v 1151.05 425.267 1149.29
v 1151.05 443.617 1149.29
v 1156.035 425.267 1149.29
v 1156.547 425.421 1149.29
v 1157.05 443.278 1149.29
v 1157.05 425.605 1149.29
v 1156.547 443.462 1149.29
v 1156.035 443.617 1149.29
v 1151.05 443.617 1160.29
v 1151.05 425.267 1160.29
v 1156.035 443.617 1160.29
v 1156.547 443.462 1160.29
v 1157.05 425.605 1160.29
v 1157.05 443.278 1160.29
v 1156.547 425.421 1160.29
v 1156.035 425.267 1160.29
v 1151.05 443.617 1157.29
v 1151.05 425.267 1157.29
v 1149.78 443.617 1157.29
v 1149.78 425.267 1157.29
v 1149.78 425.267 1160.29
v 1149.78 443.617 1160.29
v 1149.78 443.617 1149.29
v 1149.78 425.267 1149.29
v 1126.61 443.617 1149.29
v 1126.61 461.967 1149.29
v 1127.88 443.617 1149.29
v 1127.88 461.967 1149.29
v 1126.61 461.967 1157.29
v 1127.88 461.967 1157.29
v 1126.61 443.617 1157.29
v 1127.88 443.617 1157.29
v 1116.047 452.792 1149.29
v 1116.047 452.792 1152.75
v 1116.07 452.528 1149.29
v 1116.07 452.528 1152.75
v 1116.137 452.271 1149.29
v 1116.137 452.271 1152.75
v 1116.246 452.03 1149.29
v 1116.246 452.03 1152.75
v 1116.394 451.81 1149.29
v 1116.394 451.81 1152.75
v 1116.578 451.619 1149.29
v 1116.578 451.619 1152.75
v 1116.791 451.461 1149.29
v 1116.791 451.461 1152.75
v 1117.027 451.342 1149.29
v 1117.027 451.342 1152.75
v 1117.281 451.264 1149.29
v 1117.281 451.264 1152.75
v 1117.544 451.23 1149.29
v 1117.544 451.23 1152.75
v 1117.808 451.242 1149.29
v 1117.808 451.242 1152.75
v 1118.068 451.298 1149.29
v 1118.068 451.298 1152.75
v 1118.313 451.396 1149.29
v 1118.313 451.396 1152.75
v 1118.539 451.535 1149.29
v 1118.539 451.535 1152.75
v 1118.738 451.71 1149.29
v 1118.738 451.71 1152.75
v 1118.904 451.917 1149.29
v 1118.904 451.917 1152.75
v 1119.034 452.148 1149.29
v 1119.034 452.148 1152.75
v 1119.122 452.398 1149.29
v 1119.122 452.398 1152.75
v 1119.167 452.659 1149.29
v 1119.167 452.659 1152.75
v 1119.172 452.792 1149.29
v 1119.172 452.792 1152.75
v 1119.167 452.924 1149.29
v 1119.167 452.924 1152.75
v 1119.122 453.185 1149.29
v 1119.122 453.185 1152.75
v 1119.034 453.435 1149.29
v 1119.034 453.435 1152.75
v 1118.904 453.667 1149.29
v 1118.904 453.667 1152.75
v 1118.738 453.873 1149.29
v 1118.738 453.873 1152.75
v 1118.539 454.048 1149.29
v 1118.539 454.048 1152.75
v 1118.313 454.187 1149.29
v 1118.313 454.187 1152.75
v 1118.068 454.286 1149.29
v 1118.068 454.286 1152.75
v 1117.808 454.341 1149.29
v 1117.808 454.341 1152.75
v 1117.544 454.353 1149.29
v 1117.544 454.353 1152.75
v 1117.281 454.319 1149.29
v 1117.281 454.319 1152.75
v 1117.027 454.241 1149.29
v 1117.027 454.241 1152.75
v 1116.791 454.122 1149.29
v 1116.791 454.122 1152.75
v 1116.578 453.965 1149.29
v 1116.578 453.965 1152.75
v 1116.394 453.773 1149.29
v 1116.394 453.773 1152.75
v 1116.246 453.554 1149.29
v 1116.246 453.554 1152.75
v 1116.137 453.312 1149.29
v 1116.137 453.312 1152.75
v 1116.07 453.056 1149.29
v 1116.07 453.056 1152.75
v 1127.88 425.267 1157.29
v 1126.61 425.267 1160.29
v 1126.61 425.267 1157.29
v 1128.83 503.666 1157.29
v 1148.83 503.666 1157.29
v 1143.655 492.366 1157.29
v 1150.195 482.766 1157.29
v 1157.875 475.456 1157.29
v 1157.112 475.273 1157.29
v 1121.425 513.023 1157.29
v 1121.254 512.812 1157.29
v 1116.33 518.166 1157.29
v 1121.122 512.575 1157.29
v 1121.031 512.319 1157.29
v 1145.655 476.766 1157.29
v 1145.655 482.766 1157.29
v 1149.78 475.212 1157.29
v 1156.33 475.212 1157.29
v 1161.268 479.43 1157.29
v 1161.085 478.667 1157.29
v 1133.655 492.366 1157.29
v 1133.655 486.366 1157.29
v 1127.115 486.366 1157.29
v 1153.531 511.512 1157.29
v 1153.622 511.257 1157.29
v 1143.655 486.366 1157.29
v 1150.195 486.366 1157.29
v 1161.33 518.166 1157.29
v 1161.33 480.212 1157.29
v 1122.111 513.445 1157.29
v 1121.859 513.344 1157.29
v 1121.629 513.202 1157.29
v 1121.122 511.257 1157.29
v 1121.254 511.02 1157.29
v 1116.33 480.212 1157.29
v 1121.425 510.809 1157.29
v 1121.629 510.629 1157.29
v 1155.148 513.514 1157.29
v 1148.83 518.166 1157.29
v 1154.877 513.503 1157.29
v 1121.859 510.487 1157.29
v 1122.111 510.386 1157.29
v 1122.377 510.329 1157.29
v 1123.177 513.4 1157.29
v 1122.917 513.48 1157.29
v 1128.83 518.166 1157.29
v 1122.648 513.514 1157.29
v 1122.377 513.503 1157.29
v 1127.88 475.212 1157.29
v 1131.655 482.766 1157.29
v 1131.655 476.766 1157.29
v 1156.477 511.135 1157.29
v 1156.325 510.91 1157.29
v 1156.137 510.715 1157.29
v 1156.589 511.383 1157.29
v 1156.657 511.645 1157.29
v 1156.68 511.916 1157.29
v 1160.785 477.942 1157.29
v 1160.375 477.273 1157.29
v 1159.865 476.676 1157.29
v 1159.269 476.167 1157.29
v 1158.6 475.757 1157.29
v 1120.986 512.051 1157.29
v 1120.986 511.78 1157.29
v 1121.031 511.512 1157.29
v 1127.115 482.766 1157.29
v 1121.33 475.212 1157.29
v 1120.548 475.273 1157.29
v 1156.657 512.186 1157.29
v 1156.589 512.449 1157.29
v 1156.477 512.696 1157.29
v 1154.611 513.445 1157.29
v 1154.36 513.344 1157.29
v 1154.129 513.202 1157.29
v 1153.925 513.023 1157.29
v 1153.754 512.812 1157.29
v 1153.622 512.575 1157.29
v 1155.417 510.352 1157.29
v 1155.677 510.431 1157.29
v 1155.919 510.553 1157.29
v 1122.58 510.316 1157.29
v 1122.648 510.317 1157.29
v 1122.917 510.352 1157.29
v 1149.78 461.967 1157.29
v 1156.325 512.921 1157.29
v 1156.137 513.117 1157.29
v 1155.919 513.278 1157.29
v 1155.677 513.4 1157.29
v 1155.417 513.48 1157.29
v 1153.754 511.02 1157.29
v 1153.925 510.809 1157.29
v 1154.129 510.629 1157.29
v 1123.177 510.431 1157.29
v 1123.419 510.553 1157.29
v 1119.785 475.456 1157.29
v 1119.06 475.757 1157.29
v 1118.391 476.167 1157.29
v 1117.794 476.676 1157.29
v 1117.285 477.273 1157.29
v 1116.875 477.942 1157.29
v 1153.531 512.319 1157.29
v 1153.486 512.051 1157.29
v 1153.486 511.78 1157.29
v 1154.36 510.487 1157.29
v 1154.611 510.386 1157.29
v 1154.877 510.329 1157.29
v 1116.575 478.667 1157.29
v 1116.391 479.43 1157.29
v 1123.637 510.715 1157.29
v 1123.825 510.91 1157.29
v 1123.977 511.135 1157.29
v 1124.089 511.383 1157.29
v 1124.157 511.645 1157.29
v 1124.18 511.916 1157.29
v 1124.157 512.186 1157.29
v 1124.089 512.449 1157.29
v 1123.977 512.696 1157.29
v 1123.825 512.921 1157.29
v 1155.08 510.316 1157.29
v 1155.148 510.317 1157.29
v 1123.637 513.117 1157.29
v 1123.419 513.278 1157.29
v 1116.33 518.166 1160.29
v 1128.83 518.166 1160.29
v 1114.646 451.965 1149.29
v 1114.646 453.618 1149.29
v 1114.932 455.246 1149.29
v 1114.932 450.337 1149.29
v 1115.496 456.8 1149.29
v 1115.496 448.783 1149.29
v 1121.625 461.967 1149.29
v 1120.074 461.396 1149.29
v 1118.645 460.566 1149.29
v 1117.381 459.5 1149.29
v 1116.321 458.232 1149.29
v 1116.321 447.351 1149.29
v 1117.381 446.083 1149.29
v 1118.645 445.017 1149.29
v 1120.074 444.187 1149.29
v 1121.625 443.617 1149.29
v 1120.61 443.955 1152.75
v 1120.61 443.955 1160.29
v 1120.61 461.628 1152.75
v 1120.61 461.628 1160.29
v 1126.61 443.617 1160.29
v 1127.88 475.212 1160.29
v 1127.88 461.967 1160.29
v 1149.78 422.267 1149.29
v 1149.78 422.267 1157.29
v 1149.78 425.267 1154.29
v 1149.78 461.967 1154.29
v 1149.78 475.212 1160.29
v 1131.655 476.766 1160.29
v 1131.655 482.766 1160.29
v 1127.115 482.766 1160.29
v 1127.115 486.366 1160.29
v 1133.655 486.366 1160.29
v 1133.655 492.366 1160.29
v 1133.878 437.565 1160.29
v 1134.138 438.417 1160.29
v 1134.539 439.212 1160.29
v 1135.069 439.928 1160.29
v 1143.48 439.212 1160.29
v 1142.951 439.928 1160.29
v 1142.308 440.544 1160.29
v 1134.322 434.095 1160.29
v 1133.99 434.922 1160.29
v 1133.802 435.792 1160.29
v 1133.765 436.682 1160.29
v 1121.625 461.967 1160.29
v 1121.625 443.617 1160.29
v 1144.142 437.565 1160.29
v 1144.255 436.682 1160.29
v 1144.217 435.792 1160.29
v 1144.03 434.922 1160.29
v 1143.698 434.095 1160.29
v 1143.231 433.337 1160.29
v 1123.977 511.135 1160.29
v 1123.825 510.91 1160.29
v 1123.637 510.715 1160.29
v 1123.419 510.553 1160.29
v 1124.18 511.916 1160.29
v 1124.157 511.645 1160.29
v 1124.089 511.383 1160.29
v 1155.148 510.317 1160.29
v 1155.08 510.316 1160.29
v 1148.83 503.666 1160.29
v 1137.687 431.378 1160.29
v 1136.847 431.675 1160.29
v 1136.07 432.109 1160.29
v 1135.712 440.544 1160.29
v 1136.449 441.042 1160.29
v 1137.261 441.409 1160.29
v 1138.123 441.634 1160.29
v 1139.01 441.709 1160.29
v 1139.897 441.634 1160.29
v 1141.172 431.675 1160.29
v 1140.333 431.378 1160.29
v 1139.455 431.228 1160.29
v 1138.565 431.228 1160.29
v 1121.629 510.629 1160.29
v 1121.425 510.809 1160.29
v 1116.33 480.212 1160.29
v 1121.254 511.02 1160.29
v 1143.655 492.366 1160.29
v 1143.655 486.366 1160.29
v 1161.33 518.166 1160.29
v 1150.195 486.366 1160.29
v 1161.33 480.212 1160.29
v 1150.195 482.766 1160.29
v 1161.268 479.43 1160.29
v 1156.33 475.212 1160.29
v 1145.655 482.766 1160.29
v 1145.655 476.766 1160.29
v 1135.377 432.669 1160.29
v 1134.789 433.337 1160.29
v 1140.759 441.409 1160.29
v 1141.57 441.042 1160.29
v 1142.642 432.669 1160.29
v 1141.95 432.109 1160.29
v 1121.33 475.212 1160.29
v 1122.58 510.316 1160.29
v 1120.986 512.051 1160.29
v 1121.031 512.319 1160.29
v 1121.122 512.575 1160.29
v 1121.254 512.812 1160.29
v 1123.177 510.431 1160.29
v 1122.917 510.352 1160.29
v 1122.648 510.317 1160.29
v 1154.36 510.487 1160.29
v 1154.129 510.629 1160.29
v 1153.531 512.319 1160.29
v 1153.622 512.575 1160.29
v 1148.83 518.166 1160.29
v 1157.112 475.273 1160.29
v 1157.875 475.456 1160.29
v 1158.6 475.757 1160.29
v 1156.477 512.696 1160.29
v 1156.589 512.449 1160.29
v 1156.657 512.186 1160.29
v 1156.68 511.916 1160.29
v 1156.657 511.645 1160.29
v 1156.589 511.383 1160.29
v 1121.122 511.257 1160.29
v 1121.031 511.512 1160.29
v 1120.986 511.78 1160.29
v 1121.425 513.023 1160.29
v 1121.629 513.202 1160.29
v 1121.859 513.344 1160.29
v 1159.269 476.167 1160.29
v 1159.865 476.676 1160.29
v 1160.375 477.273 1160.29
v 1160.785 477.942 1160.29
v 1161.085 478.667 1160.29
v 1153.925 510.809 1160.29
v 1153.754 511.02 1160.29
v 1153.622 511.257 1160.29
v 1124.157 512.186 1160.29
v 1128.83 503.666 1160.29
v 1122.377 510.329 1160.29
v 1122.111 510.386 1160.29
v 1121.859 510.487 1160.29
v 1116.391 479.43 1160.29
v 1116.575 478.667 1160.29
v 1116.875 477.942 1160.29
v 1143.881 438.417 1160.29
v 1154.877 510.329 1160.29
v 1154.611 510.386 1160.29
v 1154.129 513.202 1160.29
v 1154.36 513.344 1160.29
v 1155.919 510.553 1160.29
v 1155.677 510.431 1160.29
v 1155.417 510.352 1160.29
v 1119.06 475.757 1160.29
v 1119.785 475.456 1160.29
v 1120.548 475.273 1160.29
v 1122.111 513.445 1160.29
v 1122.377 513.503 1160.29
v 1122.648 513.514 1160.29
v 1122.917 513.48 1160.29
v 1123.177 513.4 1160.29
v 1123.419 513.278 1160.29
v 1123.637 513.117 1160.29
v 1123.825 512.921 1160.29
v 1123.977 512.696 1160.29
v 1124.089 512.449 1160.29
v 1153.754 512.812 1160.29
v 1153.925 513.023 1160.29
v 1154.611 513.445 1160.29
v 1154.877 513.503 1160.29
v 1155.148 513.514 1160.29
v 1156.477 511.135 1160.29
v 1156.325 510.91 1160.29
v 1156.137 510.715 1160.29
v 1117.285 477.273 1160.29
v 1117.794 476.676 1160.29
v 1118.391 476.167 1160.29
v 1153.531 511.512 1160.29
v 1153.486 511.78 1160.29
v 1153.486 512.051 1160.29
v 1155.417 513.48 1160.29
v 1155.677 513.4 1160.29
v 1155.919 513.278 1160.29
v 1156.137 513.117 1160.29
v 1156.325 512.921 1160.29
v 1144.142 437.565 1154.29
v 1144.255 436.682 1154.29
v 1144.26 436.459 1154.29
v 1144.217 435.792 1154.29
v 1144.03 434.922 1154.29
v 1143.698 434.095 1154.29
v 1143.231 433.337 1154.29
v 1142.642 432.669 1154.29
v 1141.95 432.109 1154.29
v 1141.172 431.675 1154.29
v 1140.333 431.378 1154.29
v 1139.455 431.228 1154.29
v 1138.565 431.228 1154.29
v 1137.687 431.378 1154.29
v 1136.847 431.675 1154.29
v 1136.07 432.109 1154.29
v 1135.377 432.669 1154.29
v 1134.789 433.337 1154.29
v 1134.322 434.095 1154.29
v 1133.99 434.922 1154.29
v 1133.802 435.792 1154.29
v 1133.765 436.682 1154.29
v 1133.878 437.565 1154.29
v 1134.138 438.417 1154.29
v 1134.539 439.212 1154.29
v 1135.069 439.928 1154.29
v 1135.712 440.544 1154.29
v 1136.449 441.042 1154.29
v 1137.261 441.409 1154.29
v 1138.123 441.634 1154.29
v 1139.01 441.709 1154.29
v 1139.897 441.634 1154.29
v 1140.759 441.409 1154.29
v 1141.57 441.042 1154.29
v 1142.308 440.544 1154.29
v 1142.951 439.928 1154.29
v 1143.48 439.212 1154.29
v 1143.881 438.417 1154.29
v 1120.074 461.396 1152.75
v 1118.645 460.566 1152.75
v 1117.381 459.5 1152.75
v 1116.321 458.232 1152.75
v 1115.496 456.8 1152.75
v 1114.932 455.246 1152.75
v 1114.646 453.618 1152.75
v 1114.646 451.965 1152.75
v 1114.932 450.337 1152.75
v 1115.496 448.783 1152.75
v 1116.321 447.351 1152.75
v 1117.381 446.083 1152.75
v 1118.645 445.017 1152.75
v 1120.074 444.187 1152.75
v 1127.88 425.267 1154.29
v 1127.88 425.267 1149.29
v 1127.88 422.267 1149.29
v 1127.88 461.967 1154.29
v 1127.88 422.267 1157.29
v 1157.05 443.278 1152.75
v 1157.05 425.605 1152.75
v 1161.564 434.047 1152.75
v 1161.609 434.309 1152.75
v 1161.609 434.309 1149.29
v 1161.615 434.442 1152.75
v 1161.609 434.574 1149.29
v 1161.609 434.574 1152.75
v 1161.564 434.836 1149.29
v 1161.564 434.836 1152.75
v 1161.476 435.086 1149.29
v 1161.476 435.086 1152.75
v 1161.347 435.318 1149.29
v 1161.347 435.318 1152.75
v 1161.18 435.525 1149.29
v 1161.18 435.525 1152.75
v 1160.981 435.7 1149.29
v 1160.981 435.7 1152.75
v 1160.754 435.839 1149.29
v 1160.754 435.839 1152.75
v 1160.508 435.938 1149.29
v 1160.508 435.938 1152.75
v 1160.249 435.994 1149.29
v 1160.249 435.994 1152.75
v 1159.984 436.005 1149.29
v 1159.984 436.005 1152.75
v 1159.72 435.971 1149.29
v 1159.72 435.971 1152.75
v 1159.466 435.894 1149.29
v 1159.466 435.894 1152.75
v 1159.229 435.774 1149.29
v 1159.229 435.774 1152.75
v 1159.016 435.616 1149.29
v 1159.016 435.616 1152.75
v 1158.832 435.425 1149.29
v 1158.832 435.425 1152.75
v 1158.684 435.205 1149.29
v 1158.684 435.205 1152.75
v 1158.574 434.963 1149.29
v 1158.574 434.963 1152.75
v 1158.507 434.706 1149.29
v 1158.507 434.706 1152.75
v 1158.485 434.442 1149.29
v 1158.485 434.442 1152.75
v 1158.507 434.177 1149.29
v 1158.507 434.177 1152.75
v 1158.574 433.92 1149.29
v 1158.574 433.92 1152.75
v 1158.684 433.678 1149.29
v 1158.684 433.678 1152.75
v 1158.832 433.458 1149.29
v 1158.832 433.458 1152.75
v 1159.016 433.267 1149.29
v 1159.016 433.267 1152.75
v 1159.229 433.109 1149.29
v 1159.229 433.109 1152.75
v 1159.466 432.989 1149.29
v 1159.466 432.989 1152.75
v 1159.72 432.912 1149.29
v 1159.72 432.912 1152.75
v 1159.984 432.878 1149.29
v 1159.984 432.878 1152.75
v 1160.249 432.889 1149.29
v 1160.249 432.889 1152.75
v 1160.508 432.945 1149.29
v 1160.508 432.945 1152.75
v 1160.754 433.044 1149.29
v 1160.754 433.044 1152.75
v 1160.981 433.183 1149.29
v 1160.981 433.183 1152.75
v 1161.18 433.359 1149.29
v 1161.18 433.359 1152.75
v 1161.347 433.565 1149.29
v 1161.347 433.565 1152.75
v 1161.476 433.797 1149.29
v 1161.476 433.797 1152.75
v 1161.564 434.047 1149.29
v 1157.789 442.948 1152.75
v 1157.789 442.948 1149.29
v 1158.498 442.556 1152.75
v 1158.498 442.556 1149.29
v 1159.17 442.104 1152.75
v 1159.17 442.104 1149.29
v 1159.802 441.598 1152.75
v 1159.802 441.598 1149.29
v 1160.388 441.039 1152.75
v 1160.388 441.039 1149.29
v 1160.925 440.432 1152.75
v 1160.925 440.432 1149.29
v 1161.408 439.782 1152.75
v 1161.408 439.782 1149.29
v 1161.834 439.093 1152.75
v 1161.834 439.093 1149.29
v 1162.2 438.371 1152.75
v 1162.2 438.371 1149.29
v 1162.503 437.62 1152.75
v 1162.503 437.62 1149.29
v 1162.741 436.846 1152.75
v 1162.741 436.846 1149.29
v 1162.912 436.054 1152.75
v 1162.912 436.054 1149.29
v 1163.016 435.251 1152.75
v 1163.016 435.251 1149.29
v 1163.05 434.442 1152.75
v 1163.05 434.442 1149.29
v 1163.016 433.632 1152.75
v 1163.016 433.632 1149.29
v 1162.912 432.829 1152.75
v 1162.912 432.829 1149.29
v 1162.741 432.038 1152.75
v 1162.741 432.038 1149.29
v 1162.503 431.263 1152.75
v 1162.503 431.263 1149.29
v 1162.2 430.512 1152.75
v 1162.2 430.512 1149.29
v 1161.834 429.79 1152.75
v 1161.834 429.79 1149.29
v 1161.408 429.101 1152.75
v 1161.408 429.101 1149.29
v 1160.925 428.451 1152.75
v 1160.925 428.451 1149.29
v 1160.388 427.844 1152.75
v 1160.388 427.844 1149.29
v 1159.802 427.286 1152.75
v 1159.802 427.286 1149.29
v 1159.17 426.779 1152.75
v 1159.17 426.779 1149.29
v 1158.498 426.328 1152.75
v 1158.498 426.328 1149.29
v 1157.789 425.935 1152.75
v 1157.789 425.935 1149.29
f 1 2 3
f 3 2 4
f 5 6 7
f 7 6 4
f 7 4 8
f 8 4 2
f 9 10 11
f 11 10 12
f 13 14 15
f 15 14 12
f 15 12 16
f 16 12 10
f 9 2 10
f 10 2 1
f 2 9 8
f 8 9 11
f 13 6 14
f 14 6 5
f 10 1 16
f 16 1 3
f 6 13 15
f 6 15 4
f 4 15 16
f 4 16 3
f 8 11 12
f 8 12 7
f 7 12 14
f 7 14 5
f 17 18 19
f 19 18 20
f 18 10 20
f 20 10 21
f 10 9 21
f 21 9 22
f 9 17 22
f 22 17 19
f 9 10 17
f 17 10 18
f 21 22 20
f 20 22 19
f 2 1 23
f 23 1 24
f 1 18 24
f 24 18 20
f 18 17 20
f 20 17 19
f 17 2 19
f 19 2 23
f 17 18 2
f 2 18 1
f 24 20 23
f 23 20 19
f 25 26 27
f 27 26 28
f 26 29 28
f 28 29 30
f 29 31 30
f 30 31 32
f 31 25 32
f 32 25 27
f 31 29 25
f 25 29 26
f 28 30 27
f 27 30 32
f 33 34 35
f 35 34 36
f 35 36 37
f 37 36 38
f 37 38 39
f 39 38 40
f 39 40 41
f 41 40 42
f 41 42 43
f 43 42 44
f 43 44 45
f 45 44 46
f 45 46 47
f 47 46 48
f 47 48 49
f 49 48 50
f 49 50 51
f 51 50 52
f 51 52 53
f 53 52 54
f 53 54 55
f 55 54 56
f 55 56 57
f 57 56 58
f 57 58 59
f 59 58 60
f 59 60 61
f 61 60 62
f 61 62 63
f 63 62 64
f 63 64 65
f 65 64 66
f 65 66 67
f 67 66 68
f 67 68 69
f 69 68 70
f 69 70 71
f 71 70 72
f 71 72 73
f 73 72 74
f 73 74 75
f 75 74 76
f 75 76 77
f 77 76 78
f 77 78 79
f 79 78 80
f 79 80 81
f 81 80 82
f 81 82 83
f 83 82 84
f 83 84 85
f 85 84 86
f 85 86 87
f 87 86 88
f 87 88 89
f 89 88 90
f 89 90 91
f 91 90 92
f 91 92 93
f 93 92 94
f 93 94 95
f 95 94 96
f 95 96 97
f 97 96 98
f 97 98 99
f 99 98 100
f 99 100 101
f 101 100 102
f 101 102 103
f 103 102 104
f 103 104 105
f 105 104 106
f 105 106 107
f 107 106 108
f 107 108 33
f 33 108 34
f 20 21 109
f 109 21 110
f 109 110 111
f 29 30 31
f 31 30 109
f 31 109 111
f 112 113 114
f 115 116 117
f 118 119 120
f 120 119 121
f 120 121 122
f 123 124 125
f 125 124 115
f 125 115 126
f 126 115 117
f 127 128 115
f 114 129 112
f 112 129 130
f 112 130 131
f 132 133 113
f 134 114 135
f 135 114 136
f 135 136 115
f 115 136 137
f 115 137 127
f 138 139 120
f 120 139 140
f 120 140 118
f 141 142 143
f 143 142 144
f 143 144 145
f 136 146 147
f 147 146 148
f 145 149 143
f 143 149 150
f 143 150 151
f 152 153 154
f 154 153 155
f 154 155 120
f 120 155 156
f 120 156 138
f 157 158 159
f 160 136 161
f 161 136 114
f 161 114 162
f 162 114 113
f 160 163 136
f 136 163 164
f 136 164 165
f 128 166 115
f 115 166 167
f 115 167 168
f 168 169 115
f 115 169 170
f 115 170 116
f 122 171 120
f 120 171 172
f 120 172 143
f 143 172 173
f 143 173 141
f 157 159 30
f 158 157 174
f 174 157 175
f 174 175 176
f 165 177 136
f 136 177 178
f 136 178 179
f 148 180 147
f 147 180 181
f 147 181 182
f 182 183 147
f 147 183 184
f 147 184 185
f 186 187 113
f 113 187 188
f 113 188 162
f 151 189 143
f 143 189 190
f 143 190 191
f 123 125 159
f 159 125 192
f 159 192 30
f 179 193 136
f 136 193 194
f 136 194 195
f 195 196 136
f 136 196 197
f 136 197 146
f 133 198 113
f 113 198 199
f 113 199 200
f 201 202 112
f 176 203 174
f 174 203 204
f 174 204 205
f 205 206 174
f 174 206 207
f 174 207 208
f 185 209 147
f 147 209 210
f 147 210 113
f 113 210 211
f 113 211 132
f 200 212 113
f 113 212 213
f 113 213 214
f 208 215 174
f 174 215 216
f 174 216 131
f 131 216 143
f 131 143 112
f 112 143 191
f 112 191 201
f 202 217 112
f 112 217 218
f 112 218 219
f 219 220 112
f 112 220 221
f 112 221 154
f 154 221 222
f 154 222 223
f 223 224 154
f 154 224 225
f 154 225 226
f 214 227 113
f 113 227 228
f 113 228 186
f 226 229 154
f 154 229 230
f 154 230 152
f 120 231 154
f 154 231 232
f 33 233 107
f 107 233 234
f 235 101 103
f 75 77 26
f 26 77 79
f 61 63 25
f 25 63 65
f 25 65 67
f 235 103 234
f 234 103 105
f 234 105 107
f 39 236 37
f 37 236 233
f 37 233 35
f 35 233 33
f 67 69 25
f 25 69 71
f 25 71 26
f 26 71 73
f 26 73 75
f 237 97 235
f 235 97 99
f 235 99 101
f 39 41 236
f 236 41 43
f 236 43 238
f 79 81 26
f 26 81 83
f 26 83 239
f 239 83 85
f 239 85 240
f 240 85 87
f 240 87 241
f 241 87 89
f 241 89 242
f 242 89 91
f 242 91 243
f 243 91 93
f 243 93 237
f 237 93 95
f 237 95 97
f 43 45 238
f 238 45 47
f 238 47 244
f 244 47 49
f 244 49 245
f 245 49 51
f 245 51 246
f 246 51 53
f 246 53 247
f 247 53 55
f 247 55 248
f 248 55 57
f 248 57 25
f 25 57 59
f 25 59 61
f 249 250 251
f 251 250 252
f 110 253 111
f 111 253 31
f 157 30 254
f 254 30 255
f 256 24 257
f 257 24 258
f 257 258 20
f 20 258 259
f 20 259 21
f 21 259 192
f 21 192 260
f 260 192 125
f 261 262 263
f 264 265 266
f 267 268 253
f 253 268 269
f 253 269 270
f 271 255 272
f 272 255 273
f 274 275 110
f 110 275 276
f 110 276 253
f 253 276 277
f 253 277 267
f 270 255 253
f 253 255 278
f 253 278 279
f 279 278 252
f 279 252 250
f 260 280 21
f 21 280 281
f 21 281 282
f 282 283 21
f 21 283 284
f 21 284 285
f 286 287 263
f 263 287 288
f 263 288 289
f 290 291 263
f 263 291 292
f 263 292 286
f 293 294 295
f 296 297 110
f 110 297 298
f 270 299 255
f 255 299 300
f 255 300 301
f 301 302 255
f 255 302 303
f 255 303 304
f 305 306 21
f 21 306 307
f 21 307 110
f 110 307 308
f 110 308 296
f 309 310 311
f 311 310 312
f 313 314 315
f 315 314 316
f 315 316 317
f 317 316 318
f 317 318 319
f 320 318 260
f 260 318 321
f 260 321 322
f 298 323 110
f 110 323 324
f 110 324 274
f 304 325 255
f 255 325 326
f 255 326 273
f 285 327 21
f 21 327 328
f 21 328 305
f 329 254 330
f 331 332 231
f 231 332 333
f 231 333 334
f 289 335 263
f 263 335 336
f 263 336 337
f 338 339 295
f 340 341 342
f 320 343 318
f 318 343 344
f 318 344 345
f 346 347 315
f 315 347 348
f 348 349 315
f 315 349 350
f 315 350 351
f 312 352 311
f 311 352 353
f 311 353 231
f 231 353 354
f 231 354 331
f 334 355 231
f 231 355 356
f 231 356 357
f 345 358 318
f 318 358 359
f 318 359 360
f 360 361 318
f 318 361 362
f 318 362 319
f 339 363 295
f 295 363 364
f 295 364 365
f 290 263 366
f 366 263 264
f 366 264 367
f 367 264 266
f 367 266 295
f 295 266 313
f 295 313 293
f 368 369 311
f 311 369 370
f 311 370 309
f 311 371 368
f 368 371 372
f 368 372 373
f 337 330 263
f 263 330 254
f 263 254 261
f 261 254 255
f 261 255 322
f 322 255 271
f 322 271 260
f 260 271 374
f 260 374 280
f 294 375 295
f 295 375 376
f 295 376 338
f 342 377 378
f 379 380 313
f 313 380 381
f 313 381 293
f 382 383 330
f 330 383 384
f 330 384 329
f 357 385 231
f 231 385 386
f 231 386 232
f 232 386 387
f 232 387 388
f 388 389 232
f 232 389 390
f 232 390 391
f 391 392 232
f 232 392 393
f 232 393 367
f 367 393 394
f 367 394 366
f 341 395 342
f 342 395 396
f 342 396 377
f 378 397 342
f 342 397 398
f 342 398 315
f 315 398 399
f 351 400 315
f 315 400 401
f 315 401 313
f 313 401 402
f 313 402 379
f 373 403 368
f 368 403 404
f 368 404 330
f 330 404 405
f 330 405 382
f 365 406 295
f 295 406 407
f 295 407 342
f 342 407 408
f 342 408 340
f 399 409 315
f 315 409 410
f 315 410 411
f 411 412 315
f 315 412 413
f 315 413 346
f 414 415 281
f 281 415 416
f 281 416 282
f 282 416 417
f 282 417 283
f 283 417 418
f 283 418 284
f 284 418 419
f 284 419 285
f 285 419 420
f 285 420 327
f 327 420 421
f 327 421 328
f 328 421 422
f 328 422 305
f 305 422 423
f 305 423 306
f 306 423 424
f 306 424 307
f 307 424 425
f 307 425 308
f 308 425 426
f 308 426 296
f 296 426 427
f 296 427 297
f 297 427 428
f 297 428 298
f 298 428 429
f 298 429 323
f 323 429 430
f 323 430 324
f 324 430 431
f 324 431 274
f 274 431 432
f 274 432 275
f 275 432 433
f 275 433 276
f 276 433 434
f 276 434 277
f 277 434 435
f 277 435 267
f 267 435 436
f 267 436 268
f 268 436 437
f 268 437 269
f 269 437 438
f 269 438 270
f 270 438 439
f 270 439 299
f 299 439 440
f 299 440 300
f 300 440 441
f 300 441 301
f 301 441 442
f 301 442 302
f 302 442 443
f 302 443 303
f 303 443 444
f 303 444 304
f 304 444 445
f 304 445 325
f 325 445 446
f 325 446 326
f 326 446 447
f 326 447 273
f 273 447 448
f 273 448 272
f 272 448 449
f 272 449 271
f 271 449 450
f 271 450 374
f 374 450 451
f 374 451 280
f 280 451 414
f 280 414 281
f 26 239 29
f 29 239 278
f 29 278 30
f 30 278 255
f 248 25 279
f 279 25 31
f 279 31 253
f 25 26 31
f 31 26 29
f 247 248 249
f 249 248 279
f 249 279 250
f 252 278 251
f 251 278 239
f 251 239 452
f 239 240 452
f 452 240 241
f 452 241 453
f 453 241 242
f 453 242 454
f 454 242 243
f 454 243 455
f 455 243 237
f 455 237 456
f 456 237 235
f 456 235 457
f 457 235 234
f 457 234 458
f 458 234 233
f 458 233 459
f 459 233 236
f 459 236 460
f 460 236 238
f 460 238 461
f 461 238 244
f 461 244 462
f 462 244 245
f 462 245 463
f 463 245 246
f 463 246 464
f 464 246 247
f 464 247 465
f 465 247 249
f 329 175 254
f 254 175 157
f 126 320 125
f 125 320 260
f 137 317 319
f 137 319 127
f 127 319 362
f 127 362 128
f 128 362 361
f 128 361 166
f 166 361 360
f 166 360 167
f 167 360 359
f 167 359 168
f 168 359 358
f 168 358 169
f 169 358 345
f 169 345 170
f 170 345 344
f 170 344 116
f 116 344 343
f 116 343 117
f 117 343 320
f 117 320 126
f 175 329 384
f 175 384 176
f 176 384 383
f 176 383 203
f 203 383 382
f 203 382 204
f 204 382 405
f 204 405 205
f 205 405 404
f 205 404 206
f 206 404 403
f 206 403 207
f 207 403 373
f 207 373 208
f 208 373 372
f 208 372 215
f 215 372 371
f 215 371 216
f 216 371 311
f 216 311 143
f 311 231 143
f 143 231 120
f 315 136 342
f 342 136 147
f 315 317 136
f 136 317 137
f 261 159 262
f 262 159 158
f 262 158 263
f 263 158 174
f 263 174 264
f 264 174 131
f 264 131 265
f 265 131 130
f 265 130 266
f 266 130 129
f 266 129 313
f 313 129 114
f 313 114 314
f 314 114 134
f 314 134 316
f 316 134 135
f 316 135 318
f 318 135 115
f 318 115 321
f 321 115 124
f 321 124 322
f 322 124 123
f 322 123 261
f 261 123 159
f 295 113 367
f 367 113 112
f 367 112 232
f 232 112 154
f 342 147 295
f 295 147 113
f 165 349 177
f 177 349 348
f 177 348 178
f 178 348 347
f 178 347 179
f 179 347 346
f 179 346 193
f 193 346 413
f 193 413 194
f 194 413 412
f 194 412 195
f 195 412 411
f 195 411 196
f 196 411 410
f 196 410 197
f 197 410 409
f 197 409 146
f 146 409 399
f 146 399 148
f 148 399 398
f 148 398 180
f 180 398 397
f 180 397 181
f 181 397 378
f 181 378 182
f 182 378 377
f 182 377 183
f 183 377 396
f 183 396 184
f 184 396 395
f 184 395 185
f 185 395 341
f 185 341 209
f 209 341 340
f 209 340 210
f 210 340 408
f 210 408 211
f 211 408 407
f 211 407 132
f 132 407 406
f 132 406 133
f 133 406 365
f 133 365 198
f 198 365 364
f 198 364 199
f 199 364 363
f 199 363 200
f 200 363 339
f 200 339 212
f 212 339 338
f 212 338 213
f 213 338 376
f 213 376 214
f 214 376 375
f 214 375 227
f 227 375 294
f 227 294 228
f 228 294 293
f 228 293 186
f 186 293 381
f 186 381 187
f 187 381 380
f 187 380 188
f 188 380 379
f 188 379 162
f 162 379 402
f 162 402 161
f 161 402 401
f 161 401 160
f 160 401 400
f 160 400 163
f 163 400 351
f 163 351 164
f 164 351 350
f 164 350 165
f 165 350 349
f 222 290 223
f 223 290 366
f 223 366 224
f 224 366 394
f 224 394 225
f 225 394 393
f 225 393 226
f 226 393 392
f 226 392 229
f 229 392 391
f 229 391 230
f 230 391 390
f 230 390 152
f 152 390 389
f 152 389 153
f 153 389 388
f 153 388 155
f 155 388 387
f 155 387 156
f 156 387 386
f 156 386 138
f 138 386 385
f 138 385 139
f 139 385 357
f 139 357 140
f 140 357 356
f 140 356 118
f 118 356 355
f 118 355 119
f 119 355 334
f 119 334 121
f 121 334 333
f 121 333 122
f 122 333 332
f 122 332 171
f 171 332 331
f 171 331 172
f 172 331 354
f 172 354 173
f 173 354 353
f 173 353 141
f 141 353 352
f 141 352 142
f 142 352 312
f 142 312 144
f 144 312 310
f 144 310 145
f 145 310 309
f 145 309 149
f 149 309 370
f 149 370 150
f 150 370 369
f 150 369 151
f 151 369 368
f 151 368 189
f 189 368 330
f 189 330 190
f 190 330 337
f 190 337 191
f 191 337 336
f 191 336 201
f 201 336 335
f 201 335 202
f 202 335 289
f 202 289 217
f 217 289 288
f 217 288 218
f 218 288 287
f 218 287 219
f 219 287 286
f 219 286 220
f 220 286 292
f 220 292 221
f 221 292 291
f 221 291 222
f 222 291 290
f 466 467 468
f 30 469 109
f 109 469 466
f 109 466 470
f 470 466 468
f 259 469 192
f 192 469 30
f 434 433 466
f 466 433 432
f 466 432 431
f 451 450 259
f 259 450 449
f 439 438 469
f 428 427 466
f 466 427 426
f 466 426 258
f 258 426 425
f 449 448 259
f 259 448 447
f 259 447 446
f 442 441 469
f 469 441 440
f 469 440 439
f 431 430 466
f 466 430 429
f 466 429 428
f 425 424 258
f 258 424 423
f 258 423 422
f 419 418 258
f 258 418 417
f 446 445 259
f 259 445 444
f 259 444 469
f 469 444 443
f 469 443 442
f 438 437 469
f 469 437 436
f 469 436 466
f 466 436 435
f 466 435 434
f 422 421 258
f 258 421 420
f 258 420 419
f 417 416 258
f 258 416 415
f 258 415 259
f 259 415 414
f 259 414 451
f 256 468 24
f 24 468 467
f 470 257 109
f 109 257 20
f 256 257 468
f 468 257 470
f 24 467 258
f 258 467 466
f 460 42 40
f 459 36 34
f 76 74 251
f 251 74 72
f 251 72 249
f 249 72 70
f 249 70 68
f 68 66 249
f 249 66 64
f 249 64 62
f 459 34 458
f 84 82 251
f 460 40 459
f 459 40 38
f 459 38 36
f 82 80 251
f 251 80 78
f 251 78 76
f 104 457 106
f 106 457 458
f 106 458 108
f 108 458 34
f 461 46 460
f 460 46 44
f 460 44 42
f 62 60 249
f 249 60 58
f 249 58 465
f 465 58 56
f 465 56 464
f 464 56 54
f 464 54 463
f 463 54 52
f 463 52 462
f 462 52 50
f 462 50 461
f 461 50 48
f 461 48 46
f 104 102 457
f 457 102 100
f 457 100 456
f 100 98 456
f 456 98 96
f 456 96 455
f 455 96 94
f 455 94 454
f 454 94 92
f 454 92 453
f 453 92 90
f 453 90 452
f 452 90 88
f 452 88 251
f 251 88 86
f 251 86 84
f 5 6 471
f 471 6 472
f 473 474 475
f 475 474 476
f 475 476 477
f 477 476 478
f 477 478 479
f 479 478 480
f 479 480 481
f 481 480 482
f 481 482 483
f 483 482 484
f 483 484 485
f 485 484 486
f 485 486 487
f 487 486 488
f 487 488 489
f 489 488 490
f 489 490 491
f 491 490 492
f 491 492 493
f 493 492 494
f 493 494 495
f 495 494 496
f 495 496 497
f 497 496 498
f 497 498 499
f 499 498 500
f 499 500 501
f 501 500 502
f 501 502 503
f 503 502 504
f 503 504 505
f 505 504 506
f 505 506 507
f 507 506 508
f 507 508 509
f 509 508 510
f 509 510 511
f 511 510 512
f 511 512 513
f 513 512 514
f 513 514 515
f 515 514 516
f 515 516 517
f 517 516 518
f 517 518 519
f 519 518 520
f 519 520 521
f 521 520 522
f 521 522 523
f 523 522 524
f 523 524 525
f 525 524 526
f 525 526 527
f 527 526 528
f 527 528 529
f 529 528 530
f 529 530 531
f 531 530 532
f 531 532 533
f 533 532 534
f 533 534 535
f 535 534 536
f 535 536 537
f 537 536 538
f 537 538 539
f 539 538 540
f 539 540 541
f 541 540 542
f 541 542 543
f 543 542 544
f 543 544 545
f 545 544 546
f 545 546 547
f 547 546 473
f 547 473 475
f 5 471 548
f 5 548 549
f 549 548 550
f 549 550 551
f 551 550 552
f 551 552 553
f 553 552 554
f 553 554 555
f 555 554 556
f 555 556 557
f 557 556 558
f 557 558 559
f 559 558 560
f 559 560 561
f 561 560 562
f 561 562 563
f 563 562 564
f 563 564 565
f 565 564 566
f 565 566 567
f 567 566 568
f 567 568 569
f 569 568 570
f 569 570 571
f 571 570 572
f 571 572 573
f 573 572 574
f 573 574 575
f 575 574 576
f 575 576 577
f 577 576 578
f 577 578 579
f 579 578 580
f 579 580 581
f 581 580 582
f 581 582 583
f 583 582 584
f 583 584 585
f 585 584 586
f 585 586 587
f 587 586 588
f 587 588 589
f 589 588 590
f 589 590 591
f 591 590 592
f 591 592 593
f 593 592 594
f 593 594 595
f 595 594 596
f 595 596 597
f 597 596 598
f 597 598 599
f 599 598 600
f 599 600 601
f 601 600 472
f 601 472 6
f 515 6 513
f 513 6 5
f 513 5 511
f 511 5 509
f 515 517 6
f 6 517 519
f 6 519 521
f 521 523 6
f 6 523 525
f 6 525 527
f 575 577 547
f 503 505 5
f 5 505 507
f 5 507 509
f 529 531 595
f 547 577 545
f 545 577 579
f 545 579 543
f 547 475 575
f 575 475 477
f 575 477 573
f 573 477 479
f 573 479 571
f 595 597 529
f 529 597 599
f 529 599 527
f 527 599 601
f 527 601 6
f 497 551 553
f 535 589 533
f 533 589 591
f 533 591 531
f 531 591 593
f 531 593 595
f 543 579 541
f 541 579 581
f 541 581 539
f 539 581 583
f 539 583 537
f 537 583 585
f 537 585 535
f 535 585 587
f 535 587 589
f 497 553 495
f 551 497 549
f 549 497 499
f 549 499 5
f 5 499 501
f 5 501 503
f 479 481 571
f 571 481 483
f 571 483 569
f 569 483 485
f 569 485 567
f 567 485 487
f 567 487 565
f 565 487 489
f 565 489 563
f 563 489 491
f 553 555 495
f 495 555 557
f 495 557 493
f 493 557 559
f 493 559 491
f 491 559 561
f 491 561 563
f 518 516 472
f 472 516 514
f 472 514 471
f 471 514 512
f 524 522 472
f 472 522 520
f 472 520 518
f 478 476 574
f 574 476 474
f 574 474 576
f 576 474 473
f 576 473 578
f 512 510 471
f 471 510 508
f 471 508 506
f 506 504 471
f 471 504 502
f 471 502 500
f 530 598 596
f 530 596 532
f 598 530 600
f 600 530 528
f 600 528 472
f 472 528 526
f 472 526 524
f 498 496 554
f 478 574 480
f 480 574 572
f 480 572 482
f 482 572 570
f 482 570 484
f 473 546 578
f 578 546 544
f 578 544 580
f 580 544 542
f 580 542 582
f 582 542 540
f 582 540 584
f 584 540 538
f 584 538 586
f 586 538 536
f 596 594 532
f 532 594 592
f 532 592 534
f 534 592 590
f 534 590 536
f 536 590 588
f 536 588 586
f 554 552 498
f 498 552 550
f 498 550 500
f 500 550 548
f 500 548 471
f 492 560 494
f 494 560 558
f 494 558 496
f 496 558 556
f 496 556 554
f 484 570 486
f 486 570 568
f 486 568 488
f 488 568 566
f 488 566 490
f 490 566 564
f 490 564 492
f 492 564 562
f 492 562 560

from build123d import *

# Parameters (mm, degrees)
BOSS_EXTRUDE1_DEPTH      = 17.806228865
BOSS_EXTRUDE2_DEPTH      = 3
SKETCH5_W                = 21.9
SKETCH5_H                = 3
BOSS_EXTRUDE3_DEPTH      = 37
CUT_EXTRUDE1_REACH       = 1273.855
SKETCH7_R                = 5.25
SKETCH8_W                = 3
SKETCH8_H                = 36.7
BOSS_EXTRUDE4_DEPTH      = 1.27
SKETCH9_W                = 3
SKETCH9_H                = 18.35
BOSS_EXTRUDE5_DEPTH      = 6
SKETCH11_W               = 6
SKETCH11_H               = 18.35
BOSS_EXTRUDE6_DEPTH      = 8
SKETCH12_W               = 6
SKETCH12_H               = 18.35
BOSS_EXTRUDE7_DEPTH      = 6
SKETCH14_R               = 1.5625
CUT_EXTRUDE2_DEPTH       = 1272.783249002
CUT_EXTRUDE3_DEPTH       = 1272.855217677
SKETCH17_R               = 1.6
CUT_EXTRUDE4_DEPTH       = 1272.855217677
SKETCH18_R               = 2.5
CUT_EXTRUDE5_DEPTH       = 3
FILLET8_R                = 2
SKETCH19_W               = 3
SKETCH19_H               = 18.35
BOSS_EXTRUDE9_DEPTH      = 1.27
SKETCH20_W               = 6
SKETCH20_H               = 18.35
BOSS_EXTRUDE10_DEPTH     = 11
SKETCH21_W               = 6
SKETCH21_H               = 18.35
BOSS_EXTRUDE12_DEPTH     = 6
SKETCH22_R               = 1.565
CUT_EXTRUDE6_DEPTH       = 1274.354061352
CUT_EXTRUDE7_DEPTH       = 1274.354061352
CUT_EXTRUDE7_DEPTH_BACK  = 1274.354061352
CUT_EXTRUDE11_DEPTH      = 1272.593907123
CUT_EXTRUDE11_DEPTH_BACK = 1272.593907123
SKETCH29_W               = 17.806228865
SKETCH29_H               = 21.127306801
CUT_EXTRUDE12_DEPTH      = 1271.750455843
CUT_EXTRUDE12_DEPTH_BACK = 1271.750455843
SKETCH30_W               = 45
SKETCH30_H               = 36.649004673
BOSS_EXTRUDE14_DEPTH     = 3
CUT_EXTRUDE13_DEPTH      = 1274.303470735
CUT_EXTRUDE13_DEPTH_BACK = 1274.303470735
CUT_EXTRUDE15_DEPTH      = 1274.303470735
CUT_EXTRUDE15_DEPTH_BACK = 1274.303470735
SKETCH35_W               = 20
SKETCH35_H               = 14.5
CUT_EXTRUDE16_DEPTH      = 1274.303470735
CUT_EXTRUDE16_DEPTH_BACK = 1274.303470735
SKETCH36_R               = 1.6
SKETCH37_W               = 21.9
SKETCH37_H               = 36.7
BOSS_EXTRUDE16_DEPTH     = 3
CUT_EXTRUDE17_DEPTH      = 1274.281087814
CUT_EXTRUDE17_DEPTH_BACK = 1274.281087814
SKETCH38_R               = 5.25
SKETCH39_W               = 21.9
SKETCH39_H               = 8
BOSS_EXTRUDE17_DEPTH     = 3
SKETCH40_W               = 8
SKETCH40_H               = 18.35
BOSS_EXTRUDE19_DEPTH     = 1.27
SKETCH41_W               = 8
SKETCH41_H               = 18.35
BOSS_EXTRUDE20_DEPTH     = 1.27
SKETCH42_W               = 7.54
SKETCH42_H               = 18.35
CUT_EXTRUDE18_DEPTH      = 1272.443848437
SKETCH43_W               = 7.54
SKETCH43_H               = 18.35
CUT_EXTRUDE19_DEPTH      = 1272.443848437


with BuildPart() as part:
    # Sketch1 → Boss-Extrude1 (new body)
    with BuildSketch(Plane(origin=(0, 0, 1119.483697074), x_dir=(-1, 0, 0), z_dir=(0, 0, -1))):
        with BuildLine():
            Line((-1161.329927858, 505.6656047), (-1161.329927858, 518.1656047))
            Line((-1161.329927858, 518.1656047), (-1148.829927858, 518.1656047))
            Line((-1148.829927858, 518.1656047), (-1148.829927858, 505.6656047))
            add(Edge.make_bspline(
                [(-1148.829927858, 505.6656047), (-1142.163261192, 505.6656047), (-1135.496594525, 505.6656047), (-1128.829927858, 505.6656047)],
                knots=[0.277777778, 0.277777778, 0.277777778, 0.277777778, 0.722222222, 0.722222222, 0.722222222, 0.722222222], degree=3))
            Line((-1128.829927858, 505.6656047), (-1128.829927858, 518.1656047))
            Line((-1128.829927858, 518.1656047), (-1116.329927858, 518.1656047))
            Line((-1116.329927858, 518.1656047), (-1116.329927858, 505.6656047))
            ThreePointArc((-1116.329927858, 505.6656047), (-1138.829927858, 497.038297899), (-1161.329927858, 505.6656047))
        make_face()
    extrude(amount=BOSS_EXTRUDE1_DEPTH)

    # Sketch4 → Boss-Extrude2 (add)
    with BuildSketch(Plane(origin=(0, 0, 1101.677468208), x_dir=(-1, 0, 0), z_dir=(0, 0, -1))):
        with BuildLine():
            Line((-1149.779927858, 462.266600027), (-1149.779927858, 489.392833753))
            ThreePointArc((-1149.779927858, 489.392833753), (-1152.708860047, 496.463901565), (-1159.779927858, 499.392833753))
            Line((-1159.779927858, 499.392833753), (-1161.329927858, 499.392833753))
            Line((-1161.329927858, 499.392833753), (-1161.329927858, 511.9156047))
            Line((-1161.329927858, 511.9156047), (-1116.329927858, 511.9156047))
            Line((-1116.329927858, 511.9156047), (-1116.329927858, 499.392833753))
            Line((-1116.329927858, 499.392833753), (-1117.879927858, 499.392833753))
            ThreePointArc((-1117.879927858, 499.392833753), (-1124.95099567, 496.463901565), (-1127.879927858, 489.392833753))
            Line((-1127.879927858, 489.392833753), (-1127.879927858, 462.266600027))
            Line((-1127.879927858, 462.266600027), (-1149.779927858, 462.266600027))
        make_face()
    extrude(amount=BOSS_EXTRUDE2_DEPTH)

    # Sketch5 → Boss-Extrude3 (add)
    with BuildSketch(Plane.XZ.offset(-462.266600027)):
        with Locations((1138.829927858, 1100.177468208)):
            Rectangle(SKETCH5_W, SKETCH5_H)
    extrude(amount=BOSS_EXTRUDE3_DEPTH)

    # Sketch7 → Cut-Extrude1 (cut, up to next)
    with BuildSketch(Plane(origin=(0, 0, 1098.677468208), x_dir=(-1, 0, 0), z_dir=(0, 0, -1)), mode=Mode.PRIVATE) as cut_extrude1_sk1:
        with Locations(Location((-1139.009861583, 436.459083359, 0), (0, 0, 90))):
            Circle(SKETCH7_R)
    cut_extrude1_tool1 = extrude(cut_extrude1_sk1.sketch, amount=-CUT_EXTRUDE1_REACH, mode=Mode.PRIVATE) & part.part
    add(cut_extrude1_tool1.solids().sort_by_distance((1139.009862, 436.459083, 1098.677468))[0], mode=Mode.SUBTRACT)



with BuildPart() as body_2:
    # Sketch8 → Boss-Extrude4 (new body)
    with BuildSketch(Plane.ZY.offset(-1127.879927858)):
        with Locations((1100.177468208, 443.616600027)):
            Rectangle(SKETCH8_W, SKETCH8_H)
    extrude(amount=BOSS_EXTRUDE4_DEPTH)


with BuildPart() as part_1:
    add(part.part)

    add(body_2.part)  # Boss-Extrude5 merges body 2
    # Sketch9 → Boss-Extrude5 (add)
    with BuildSketch(Plane.ZY.offset(-1126.609927858)):
        with Locations((1100.177468208, 452.791600027)):
            Rectangle(SKETCH9_W, SKETCH9_H)
    extrude(amount=BOSS_EXTRUDE5_DEPTH)

    # Sketch11 → Boss-Extrude6 (add)
    with BuildSketch(Plane.XY.offset(1101.677468208)):
        with Locations((1123.609927858, 452.791600027)):
            Rectangle(SKETCH11_W, SKETCH11_H)
    extrude(amount=BOSS_EXTRUDE6_DEPTH)

    # Sketch12 → Boss-Extrude7 (add)
    with BuildSketch(Plane.ZY.offset(-1120.609927858)):
        with Locations((1106.677468208, 452.791600027)):
            Rectangle(SKETCH12_W, SKETCH12_H)
    extrude(amount=BOSS_EXTRUDE7_DEPTH)

    # Sketch14 → Cut-Extrude2 (cut, through all)
    with BuildSketch(Plane(origin=(0, 0, 1103.677468208), x_dir=(-1, 0, 0), z_dir=(0, 0, -1))):
        with Locations((-1117.609927858, 452.791600027)):
            Circle(SKETCH14_R)
    extrude(amount=-CUT_EXTRUDE2_DEPTH, mode=Mode.SUBTRACT)

    # Sketch16 → Cut-Extrude3 (cut, through all)
    with BuildSketch(Plane(origin=(0, 0, 1098.677468208), x_dir=(-1, 0, 0), z_dir=(0, 0, -1))):
        with BuildLine():
            Line((-1126.609927858, 461.966600027), (-1126.609927858, 463.878724732))
            Line((-1126.609927858, 463.878724732), (-1111.609927858, 463.878724732))
            Line((-1111.609927858, 463.878724732), (-1111.609927858, 441.878724732))
            Line((-1111.609927858, 441.878724732), (-1126.609927858, 441.878724732))
            Line((-1126.609927858, 441.878724732), (-1126.609927858, 443.616600027))
            ThreePointArc((-1126.609927858, 443.616600027), (-1114.609927858, 452.791600027), (-1126.609927858, 461.966600027))
        make_face()
    extrude(amount=-CUT_EXTRUDE3_DEPTH, mode=Mode.SUBTRACT)

    # Sketch17 → Cut-Extrude4 (cut, through all)
    with BuildSketch(Plane(origin=(0, 0, 1098.677468208), x_dir=(-1, 0, 0), z_dir=(0, 0, -1))):
        with Locations(Location((-1122.579927858, 511.9156047, 0), (0, 0, 90))):
            Circle(SKETCH17_R)
        with Locations(Location((-1155.079927858, 511.9156047, 0), (0, 0, 90))):
            Circle(SKETCH17_R)
    extrude(amount=-CUT_EXTRUDE4_DEPTH, mode=Mode.SUBTRACT)

    # Sketch18 → Cut-Extrude5 (cut)
    with BuildSketch(Plane(origin=(0, 0, 1098.677468208), x_dir=(-1, 0, 0), z_dir=(0, 0, -1))):
        with Locations((-1155.079927858, 511.9156047)):
            Circle(SKETCH18_R)
        with Locations((-1122.579927858, 511.9156047)):
            Circle(SKETCH18_R)
    extrude(amount=-CUT_EXTRUDE5_DEPTH, mode=Mode.SUBTRACT)

    # Fillet8
    fillet8_edges = [part_1.edges().sort_by_distance(p)[0] for p in [
        (1138.829927858, 505.6656047, 1119.483697074),
    ]]
    fillet(fillet8_edges, radius=FILLET8_R)


with BuildPart() as body_2_2:
    # Sketch19 → Boss-Extrude9 (new body)
    with BuildSketch(Plane(origin=(1149.779927858, 0, 0), x_dir=(0, 0, -1), z_dir=(1, 0, 0))):
        with Locations((-1100.177468208, 434.441600027)):
            Rectangle(SKETCH19_W, SKETCH19_H)
    extrude(amount=BOSS_EXTRUDE9_DEPTH)


with BuildPart() as body_3:
    # Sketch20 → Boss-Extrude10 (new body)
    with BuildSketch(Plane(origin=(0, 0, 1098.677468208), x_dir=(-1, 0, 0), z_dir=(0, 0, -1))):
        with Locations((-1154.049927858, 434.441600027)):
            Rectangle(SKETCH20_W, SKETCH20_H)
    extrude(amount=-BOSS_EXTRUDE10_DEPTH)


with BuildPart() as body_4:
    # Sketch21 → Boss-Extrude12 (new body)
    with BuildSketch(Plane(origin=(1157.049927858, 0, 0), x_dir=(0, 0, -1), z_dir=(1, 0, 0))):
        with Locations((-1106.677468208, 434.441600027)):
            Rectangle(SKETCH21_W, SKETCH21_H)
    extrude(amount=BOSS_EXTRUDE12_DEPTH)

    # Sketch22 → Cut-Extrude6 (cut, through all)
    with BuildSketch(Plane(origin=(0, 0, 1103.677468208), x_dir=(-1, 0, 0), z_dir=(0, 0, -1))):
        with Locations((-1160.049927858, 434.441600027)):
            Circle(SKETCH22_R)
    extrude(amount=-CUT_EXTRUDE6_DEPTH, mode=Mode.SUBTRACT)


with BuildPart() as cut_extrude7_tool:
    # Sketch23 → Cut-Extrude7 (new, two sides: drawn at the far end of the back side and taken through both)
    with BuildSketch(Plane(origin=(0, 0, 1103.677468208), x_dir=(-1, 0, 0), z_dir=(0, 0, -1)).offset(-CUT_EXTRUDE7_DEPTH_BACK)):
        with BuildLine():
            Line((-1151.049927858, 425.266600027), (-1151.049927858, 419.441600027))
            Line((-1151.049927858, 419.441600027), (-1166.049927858, 419.441600027))
            Line((-1166.049927858, 419.441600027), (-1166.049927858, 449.441600027))
            Line((-1166.049927858, 449.441600027), (-1151.049927858, 449.441600027))
            Line((-1151.049927858, 449.441600027), (-1151.049927858, 443.616600027))
            ThreePointArc((-1151.049927858, 443.616600027), (-1163.049927858, 434.441600027), (-1151.049927858, 425.266600027))
        make_face()
    extrude(amount=CUT_EXTRUDE7_DEPTH + CUT_EXTRUDE7_DEPTH_BACK)


with BuildPart() as body_3_1:
    add(body_3.part)

    # Cut-Extrude7: cut by cut_extrude7_tool
    add(cut_extrude7_tool.part, mode=Mode.SUBTRACT)


with BuildPart() as body_4_1:
    add(body_4.part)

    # Cut-Extrude7: cut by cut_extrude7_tool
    add(cut_extrude7_tool.part, mode=Mode.SUBTRACT)


with BuildPart() as body_5:
    # Mirror4: mirrored copy
    add(part_1.part.mirror(Plane.XY.offset(1129.483697074)))

    # Sketch29 → Cut-Extrude11 (cut, two sides: drawn at the far end of the back side and taken through both)
    with BuildSketch(Plane(origin=(1161.329927858, 0, 0), x_dir=(0, 0, -1), z_dir=(1, 0, 0)).offset(-CUT_EXTRUDE11_DEPTH_BACK)):
        with Locations((-1148.386811507, 507.6019513)):
            Rectangle(SKETCH29_W, SKETCH29_H)
    extrude(amount=CUT_EXTRUDE11_DEPTH + CUT_EXTRUDE11_DEPTH_BACK, mode=Mode.SUBTRACT)

    # Sketch30 → Cut-Extrude12 (cut, two sides: drawn at the far end of the back side and taken through both)
    with BuildSketch(Plane(origin=(0, 0, 1157.289925939), x_dir=(-1, 0, 0), z_dir=(0, 0, -1)).offset(-CUT_EXTRUDE12_DEPTH_BACK)):
        with Locations((-1138.829927858, 493.591102363)):
            Rectangle(SKETCH30_W, SKETCH30_H)
    extrude(amount=CUT_EXTRUDE12_DEPTH + CUT_EXTRUDE12_DEPTH_BACK, mode=Mode.SUBTRACT)

    # Sketch32 → Boss-Extrude14 (add)
    with BuildSketch(Plane.XY.offset(1160.289925939)):
        with BuildLine():
            Line((1116.329927858, 518.1656047), (1116.329927858, 480.211710413))
            ThreePointArc((1116.329927858, 480.211710413), (1117.794393952, 476.676176507), (1121.329927858, 475.211710413))
            Line((1121.329927858, 475.211710413), (1156.329927858, 475.211710413))
            ThreePointArc((1156.329927858, 475.211710413), (1159.865461764, 476.676176507), (1161.329927858, 480.211710413))
            Line((1161.329927858, 480.211710413), (1161.329927858, 518.1656047))
            Line((1161.329927858, 518.1656047), (1116.329927858, 518.1656047))
        make_face()
    extrude(amount=-BOSS_EXTRUDE14_DEPTH)

    # Sketch33 → Cut-Extrude13 (cut, two sides: drawn at the far end of the back side and taken through both)
    with BuildSketch(Plane.XY.offset(1160.289925939).offset(-CUT_EXTRUDE13_DEPTH_BACK)):
        Polygon((1145.654927858, 476.7656047), (1131.654927858, 476.7656047), (1131.654927858, 482.7656047), (1127.114927858, 482.7656047), (1127.114927858, 486.3656047), (1133.654927858, 486.3656047), (1133.654927858, 492.3656047), (1143.654927858, 492.3656047), (1143.654927858, 486.3656047), (1150.194927858, 486.3656047), (1150.194927858, 482.7656047), (1145.654927858, 482.7656047), align=None)
    extrude(amount=CUT_EXTRUDE13_DEPTH + CUT_EXTRUDE13_DEPTH_BACK, mode=Mode.SUBTRACT)

    # Sketch35 → Cut-Extrude15 (cut, two sides: drawn at the far end of the back side and taken through both)
    with BuildSketch(Plane.XY.offset(1160.289925939).offset(-CUT_EXTRUDE15_DEPTH_BACK)):
        with Locations((1138.829927858, 510.9156047)):
            Rectangle(SKETCH35_W, SKETCH35_H)
    extrude(amount=CUT_EXTRUDE15_DEPTH + CUT_EXTRUDE15_DEPTH_BACK, mode=Mode.SUBTRACT)

    # Sketch36 → Cut-Extrude16 (cut, two sides: drawn at the far end of the back side and taken through both)
    with BuildSketch(Plane.XY.offset(1160.289925939).offset(-CUT_EXTRUDE16_DEPTH_BACK)):
        with Locations(Location((1122.579927858, 511.9156047, 0), (0, 0, 270))):
            Circle(SKETCH36_R)
        with Locations(Location((1155.079927858, 511.9156047, 0), (0, 0, 270))):
            Circle(SKETCH36_R)
    extrude(amount=CUT_EXTRUDE16_DEPTH + CUT_EXTRUDE16_DEPTH_BACK, mode=Mode.SUBTRACT)



with BuildPart() as body_6:
    # Mirror4 2: mirrored copy
    add(body_2_2.part.mirror(Plane.XY.offset(1129.483697074)))


with BuildPart() as body_7:
    # Mirror4 3: mirrored copy
    add(body_4_1.part.mirror(Plane.XY.offset(1129.483697074)))

    # Sketch43 → Cut-Extrude19 (cut, through all)
    with BuildSketch(Plane(origin=(1157.049927858, 0, 0), x_dir=(0, 0, -1), z_dir=(1, 0, 0))):
        with Locations((-1156.519925939, 434.441600027)):
            Rectangle(SKETCH43_W, SKETCH43_H)
    extrude(amount=CUT_EXTRUDE19_DEPTH, mode=Mode.SUBTRACT)


with BuildPart() as body_8:
    # Mirror4 4: mirrored copy
    add(body_3_1.part.mirror(Plane.XY.offset(1129.483697074)))


with BuildPart() as body_5_2:
    # Sketch37 → Boss-Extrude16 (new body)
    with BuildSketch(Plane(origin=(0, 0, 1157.289925939), x_dir=(-1, 0, 0), z_dir=(0, 0, -1))):
        with Locations((-1138.829927858, 443.616600027)):
            Rectangle(SKETCH37_W, SKETCH37_H)
    extrude(amount=BOSS_EXTRUDE16_DEPTH)

    # Sketch38 → Cut-Extrude17 (cut, two sides: drawn at the far end of the back side and taken through both)
    with BuildSketch(Plane.XY.offset(1157.289925939).offset(-CUT_EXTRUDE17_DEPTH_BACK)):
        with Locations(Location((1139.009861583, 436.459083359, 0), (0, 0, 90))):
            Circle(SKETCH38_R)
    extrude(amount=CUT_EXTRUDE17_DEPTH + CUT_EXTRUDE17_DEPTH_BACK, mode=Mode.SUBTRACT)


with BuildPart() as body_5_1:
    add(body_5.part)

    add(body_5_2.part)  # Boss-Extrude17 merges body 5 2
    # Sketch39 → Boss-Extrude17 (add)
    with BuildSketch(Plane.XZ.offset(-425.266600027)):
        with Locations((1138.829927858, 1153.289925939)):
            Rectangle(SKETCH39_W, SKETCH39_H)
    extrude(amount=BOSS_EXTRUDE17_DEPTH)

    # Sketch42 → Cut-Extrude18 (cut, through all)
    with BuildSketch(Plane.ZY.offset(-1120.609927858)):
        with Locations((1156.519925939, 452.791600027)):
            Rectangle(SKETCH42_W, SKETCH42_H)
    extrude(amount=CUT_EXTRUDE18_DEPTH, mode=Mode.SUBTRACT)


with BuildPart() as body_5_3:
    # Sketch40 → Boss-Extrude19 (new body)
    with BuildSketch(Plane.ZY.offset(-1151.049927858)):
        with Locations((1153.289925939, 434.441600027)):
            Rectangle(SKETCH40_W, SKETCH40_H)
    extrude(amount=BOSS_EXTRUDE19_DEPTH)


with BuildPart() as body_6_2:
    # Sketch41 → Boss-Extrude20 (new body)
    with BuildSketch(Plane(origin=(1126.609927858, 0, 0), x_dir=(0, 0, -1), z_dir=(1, 0, 0))):
        with Locations((-1153.289925939, 452.791600027)):
            Rectangle(SKETCH41_W, SKETCH41_H)
    extrude(amount=BOSS_EXTRUDE20_DEPTH)


solid = Compound([body_6.part, body_7.part, body_8.part, body_5_1.part, body_5_3.part, body_6_2.part])
